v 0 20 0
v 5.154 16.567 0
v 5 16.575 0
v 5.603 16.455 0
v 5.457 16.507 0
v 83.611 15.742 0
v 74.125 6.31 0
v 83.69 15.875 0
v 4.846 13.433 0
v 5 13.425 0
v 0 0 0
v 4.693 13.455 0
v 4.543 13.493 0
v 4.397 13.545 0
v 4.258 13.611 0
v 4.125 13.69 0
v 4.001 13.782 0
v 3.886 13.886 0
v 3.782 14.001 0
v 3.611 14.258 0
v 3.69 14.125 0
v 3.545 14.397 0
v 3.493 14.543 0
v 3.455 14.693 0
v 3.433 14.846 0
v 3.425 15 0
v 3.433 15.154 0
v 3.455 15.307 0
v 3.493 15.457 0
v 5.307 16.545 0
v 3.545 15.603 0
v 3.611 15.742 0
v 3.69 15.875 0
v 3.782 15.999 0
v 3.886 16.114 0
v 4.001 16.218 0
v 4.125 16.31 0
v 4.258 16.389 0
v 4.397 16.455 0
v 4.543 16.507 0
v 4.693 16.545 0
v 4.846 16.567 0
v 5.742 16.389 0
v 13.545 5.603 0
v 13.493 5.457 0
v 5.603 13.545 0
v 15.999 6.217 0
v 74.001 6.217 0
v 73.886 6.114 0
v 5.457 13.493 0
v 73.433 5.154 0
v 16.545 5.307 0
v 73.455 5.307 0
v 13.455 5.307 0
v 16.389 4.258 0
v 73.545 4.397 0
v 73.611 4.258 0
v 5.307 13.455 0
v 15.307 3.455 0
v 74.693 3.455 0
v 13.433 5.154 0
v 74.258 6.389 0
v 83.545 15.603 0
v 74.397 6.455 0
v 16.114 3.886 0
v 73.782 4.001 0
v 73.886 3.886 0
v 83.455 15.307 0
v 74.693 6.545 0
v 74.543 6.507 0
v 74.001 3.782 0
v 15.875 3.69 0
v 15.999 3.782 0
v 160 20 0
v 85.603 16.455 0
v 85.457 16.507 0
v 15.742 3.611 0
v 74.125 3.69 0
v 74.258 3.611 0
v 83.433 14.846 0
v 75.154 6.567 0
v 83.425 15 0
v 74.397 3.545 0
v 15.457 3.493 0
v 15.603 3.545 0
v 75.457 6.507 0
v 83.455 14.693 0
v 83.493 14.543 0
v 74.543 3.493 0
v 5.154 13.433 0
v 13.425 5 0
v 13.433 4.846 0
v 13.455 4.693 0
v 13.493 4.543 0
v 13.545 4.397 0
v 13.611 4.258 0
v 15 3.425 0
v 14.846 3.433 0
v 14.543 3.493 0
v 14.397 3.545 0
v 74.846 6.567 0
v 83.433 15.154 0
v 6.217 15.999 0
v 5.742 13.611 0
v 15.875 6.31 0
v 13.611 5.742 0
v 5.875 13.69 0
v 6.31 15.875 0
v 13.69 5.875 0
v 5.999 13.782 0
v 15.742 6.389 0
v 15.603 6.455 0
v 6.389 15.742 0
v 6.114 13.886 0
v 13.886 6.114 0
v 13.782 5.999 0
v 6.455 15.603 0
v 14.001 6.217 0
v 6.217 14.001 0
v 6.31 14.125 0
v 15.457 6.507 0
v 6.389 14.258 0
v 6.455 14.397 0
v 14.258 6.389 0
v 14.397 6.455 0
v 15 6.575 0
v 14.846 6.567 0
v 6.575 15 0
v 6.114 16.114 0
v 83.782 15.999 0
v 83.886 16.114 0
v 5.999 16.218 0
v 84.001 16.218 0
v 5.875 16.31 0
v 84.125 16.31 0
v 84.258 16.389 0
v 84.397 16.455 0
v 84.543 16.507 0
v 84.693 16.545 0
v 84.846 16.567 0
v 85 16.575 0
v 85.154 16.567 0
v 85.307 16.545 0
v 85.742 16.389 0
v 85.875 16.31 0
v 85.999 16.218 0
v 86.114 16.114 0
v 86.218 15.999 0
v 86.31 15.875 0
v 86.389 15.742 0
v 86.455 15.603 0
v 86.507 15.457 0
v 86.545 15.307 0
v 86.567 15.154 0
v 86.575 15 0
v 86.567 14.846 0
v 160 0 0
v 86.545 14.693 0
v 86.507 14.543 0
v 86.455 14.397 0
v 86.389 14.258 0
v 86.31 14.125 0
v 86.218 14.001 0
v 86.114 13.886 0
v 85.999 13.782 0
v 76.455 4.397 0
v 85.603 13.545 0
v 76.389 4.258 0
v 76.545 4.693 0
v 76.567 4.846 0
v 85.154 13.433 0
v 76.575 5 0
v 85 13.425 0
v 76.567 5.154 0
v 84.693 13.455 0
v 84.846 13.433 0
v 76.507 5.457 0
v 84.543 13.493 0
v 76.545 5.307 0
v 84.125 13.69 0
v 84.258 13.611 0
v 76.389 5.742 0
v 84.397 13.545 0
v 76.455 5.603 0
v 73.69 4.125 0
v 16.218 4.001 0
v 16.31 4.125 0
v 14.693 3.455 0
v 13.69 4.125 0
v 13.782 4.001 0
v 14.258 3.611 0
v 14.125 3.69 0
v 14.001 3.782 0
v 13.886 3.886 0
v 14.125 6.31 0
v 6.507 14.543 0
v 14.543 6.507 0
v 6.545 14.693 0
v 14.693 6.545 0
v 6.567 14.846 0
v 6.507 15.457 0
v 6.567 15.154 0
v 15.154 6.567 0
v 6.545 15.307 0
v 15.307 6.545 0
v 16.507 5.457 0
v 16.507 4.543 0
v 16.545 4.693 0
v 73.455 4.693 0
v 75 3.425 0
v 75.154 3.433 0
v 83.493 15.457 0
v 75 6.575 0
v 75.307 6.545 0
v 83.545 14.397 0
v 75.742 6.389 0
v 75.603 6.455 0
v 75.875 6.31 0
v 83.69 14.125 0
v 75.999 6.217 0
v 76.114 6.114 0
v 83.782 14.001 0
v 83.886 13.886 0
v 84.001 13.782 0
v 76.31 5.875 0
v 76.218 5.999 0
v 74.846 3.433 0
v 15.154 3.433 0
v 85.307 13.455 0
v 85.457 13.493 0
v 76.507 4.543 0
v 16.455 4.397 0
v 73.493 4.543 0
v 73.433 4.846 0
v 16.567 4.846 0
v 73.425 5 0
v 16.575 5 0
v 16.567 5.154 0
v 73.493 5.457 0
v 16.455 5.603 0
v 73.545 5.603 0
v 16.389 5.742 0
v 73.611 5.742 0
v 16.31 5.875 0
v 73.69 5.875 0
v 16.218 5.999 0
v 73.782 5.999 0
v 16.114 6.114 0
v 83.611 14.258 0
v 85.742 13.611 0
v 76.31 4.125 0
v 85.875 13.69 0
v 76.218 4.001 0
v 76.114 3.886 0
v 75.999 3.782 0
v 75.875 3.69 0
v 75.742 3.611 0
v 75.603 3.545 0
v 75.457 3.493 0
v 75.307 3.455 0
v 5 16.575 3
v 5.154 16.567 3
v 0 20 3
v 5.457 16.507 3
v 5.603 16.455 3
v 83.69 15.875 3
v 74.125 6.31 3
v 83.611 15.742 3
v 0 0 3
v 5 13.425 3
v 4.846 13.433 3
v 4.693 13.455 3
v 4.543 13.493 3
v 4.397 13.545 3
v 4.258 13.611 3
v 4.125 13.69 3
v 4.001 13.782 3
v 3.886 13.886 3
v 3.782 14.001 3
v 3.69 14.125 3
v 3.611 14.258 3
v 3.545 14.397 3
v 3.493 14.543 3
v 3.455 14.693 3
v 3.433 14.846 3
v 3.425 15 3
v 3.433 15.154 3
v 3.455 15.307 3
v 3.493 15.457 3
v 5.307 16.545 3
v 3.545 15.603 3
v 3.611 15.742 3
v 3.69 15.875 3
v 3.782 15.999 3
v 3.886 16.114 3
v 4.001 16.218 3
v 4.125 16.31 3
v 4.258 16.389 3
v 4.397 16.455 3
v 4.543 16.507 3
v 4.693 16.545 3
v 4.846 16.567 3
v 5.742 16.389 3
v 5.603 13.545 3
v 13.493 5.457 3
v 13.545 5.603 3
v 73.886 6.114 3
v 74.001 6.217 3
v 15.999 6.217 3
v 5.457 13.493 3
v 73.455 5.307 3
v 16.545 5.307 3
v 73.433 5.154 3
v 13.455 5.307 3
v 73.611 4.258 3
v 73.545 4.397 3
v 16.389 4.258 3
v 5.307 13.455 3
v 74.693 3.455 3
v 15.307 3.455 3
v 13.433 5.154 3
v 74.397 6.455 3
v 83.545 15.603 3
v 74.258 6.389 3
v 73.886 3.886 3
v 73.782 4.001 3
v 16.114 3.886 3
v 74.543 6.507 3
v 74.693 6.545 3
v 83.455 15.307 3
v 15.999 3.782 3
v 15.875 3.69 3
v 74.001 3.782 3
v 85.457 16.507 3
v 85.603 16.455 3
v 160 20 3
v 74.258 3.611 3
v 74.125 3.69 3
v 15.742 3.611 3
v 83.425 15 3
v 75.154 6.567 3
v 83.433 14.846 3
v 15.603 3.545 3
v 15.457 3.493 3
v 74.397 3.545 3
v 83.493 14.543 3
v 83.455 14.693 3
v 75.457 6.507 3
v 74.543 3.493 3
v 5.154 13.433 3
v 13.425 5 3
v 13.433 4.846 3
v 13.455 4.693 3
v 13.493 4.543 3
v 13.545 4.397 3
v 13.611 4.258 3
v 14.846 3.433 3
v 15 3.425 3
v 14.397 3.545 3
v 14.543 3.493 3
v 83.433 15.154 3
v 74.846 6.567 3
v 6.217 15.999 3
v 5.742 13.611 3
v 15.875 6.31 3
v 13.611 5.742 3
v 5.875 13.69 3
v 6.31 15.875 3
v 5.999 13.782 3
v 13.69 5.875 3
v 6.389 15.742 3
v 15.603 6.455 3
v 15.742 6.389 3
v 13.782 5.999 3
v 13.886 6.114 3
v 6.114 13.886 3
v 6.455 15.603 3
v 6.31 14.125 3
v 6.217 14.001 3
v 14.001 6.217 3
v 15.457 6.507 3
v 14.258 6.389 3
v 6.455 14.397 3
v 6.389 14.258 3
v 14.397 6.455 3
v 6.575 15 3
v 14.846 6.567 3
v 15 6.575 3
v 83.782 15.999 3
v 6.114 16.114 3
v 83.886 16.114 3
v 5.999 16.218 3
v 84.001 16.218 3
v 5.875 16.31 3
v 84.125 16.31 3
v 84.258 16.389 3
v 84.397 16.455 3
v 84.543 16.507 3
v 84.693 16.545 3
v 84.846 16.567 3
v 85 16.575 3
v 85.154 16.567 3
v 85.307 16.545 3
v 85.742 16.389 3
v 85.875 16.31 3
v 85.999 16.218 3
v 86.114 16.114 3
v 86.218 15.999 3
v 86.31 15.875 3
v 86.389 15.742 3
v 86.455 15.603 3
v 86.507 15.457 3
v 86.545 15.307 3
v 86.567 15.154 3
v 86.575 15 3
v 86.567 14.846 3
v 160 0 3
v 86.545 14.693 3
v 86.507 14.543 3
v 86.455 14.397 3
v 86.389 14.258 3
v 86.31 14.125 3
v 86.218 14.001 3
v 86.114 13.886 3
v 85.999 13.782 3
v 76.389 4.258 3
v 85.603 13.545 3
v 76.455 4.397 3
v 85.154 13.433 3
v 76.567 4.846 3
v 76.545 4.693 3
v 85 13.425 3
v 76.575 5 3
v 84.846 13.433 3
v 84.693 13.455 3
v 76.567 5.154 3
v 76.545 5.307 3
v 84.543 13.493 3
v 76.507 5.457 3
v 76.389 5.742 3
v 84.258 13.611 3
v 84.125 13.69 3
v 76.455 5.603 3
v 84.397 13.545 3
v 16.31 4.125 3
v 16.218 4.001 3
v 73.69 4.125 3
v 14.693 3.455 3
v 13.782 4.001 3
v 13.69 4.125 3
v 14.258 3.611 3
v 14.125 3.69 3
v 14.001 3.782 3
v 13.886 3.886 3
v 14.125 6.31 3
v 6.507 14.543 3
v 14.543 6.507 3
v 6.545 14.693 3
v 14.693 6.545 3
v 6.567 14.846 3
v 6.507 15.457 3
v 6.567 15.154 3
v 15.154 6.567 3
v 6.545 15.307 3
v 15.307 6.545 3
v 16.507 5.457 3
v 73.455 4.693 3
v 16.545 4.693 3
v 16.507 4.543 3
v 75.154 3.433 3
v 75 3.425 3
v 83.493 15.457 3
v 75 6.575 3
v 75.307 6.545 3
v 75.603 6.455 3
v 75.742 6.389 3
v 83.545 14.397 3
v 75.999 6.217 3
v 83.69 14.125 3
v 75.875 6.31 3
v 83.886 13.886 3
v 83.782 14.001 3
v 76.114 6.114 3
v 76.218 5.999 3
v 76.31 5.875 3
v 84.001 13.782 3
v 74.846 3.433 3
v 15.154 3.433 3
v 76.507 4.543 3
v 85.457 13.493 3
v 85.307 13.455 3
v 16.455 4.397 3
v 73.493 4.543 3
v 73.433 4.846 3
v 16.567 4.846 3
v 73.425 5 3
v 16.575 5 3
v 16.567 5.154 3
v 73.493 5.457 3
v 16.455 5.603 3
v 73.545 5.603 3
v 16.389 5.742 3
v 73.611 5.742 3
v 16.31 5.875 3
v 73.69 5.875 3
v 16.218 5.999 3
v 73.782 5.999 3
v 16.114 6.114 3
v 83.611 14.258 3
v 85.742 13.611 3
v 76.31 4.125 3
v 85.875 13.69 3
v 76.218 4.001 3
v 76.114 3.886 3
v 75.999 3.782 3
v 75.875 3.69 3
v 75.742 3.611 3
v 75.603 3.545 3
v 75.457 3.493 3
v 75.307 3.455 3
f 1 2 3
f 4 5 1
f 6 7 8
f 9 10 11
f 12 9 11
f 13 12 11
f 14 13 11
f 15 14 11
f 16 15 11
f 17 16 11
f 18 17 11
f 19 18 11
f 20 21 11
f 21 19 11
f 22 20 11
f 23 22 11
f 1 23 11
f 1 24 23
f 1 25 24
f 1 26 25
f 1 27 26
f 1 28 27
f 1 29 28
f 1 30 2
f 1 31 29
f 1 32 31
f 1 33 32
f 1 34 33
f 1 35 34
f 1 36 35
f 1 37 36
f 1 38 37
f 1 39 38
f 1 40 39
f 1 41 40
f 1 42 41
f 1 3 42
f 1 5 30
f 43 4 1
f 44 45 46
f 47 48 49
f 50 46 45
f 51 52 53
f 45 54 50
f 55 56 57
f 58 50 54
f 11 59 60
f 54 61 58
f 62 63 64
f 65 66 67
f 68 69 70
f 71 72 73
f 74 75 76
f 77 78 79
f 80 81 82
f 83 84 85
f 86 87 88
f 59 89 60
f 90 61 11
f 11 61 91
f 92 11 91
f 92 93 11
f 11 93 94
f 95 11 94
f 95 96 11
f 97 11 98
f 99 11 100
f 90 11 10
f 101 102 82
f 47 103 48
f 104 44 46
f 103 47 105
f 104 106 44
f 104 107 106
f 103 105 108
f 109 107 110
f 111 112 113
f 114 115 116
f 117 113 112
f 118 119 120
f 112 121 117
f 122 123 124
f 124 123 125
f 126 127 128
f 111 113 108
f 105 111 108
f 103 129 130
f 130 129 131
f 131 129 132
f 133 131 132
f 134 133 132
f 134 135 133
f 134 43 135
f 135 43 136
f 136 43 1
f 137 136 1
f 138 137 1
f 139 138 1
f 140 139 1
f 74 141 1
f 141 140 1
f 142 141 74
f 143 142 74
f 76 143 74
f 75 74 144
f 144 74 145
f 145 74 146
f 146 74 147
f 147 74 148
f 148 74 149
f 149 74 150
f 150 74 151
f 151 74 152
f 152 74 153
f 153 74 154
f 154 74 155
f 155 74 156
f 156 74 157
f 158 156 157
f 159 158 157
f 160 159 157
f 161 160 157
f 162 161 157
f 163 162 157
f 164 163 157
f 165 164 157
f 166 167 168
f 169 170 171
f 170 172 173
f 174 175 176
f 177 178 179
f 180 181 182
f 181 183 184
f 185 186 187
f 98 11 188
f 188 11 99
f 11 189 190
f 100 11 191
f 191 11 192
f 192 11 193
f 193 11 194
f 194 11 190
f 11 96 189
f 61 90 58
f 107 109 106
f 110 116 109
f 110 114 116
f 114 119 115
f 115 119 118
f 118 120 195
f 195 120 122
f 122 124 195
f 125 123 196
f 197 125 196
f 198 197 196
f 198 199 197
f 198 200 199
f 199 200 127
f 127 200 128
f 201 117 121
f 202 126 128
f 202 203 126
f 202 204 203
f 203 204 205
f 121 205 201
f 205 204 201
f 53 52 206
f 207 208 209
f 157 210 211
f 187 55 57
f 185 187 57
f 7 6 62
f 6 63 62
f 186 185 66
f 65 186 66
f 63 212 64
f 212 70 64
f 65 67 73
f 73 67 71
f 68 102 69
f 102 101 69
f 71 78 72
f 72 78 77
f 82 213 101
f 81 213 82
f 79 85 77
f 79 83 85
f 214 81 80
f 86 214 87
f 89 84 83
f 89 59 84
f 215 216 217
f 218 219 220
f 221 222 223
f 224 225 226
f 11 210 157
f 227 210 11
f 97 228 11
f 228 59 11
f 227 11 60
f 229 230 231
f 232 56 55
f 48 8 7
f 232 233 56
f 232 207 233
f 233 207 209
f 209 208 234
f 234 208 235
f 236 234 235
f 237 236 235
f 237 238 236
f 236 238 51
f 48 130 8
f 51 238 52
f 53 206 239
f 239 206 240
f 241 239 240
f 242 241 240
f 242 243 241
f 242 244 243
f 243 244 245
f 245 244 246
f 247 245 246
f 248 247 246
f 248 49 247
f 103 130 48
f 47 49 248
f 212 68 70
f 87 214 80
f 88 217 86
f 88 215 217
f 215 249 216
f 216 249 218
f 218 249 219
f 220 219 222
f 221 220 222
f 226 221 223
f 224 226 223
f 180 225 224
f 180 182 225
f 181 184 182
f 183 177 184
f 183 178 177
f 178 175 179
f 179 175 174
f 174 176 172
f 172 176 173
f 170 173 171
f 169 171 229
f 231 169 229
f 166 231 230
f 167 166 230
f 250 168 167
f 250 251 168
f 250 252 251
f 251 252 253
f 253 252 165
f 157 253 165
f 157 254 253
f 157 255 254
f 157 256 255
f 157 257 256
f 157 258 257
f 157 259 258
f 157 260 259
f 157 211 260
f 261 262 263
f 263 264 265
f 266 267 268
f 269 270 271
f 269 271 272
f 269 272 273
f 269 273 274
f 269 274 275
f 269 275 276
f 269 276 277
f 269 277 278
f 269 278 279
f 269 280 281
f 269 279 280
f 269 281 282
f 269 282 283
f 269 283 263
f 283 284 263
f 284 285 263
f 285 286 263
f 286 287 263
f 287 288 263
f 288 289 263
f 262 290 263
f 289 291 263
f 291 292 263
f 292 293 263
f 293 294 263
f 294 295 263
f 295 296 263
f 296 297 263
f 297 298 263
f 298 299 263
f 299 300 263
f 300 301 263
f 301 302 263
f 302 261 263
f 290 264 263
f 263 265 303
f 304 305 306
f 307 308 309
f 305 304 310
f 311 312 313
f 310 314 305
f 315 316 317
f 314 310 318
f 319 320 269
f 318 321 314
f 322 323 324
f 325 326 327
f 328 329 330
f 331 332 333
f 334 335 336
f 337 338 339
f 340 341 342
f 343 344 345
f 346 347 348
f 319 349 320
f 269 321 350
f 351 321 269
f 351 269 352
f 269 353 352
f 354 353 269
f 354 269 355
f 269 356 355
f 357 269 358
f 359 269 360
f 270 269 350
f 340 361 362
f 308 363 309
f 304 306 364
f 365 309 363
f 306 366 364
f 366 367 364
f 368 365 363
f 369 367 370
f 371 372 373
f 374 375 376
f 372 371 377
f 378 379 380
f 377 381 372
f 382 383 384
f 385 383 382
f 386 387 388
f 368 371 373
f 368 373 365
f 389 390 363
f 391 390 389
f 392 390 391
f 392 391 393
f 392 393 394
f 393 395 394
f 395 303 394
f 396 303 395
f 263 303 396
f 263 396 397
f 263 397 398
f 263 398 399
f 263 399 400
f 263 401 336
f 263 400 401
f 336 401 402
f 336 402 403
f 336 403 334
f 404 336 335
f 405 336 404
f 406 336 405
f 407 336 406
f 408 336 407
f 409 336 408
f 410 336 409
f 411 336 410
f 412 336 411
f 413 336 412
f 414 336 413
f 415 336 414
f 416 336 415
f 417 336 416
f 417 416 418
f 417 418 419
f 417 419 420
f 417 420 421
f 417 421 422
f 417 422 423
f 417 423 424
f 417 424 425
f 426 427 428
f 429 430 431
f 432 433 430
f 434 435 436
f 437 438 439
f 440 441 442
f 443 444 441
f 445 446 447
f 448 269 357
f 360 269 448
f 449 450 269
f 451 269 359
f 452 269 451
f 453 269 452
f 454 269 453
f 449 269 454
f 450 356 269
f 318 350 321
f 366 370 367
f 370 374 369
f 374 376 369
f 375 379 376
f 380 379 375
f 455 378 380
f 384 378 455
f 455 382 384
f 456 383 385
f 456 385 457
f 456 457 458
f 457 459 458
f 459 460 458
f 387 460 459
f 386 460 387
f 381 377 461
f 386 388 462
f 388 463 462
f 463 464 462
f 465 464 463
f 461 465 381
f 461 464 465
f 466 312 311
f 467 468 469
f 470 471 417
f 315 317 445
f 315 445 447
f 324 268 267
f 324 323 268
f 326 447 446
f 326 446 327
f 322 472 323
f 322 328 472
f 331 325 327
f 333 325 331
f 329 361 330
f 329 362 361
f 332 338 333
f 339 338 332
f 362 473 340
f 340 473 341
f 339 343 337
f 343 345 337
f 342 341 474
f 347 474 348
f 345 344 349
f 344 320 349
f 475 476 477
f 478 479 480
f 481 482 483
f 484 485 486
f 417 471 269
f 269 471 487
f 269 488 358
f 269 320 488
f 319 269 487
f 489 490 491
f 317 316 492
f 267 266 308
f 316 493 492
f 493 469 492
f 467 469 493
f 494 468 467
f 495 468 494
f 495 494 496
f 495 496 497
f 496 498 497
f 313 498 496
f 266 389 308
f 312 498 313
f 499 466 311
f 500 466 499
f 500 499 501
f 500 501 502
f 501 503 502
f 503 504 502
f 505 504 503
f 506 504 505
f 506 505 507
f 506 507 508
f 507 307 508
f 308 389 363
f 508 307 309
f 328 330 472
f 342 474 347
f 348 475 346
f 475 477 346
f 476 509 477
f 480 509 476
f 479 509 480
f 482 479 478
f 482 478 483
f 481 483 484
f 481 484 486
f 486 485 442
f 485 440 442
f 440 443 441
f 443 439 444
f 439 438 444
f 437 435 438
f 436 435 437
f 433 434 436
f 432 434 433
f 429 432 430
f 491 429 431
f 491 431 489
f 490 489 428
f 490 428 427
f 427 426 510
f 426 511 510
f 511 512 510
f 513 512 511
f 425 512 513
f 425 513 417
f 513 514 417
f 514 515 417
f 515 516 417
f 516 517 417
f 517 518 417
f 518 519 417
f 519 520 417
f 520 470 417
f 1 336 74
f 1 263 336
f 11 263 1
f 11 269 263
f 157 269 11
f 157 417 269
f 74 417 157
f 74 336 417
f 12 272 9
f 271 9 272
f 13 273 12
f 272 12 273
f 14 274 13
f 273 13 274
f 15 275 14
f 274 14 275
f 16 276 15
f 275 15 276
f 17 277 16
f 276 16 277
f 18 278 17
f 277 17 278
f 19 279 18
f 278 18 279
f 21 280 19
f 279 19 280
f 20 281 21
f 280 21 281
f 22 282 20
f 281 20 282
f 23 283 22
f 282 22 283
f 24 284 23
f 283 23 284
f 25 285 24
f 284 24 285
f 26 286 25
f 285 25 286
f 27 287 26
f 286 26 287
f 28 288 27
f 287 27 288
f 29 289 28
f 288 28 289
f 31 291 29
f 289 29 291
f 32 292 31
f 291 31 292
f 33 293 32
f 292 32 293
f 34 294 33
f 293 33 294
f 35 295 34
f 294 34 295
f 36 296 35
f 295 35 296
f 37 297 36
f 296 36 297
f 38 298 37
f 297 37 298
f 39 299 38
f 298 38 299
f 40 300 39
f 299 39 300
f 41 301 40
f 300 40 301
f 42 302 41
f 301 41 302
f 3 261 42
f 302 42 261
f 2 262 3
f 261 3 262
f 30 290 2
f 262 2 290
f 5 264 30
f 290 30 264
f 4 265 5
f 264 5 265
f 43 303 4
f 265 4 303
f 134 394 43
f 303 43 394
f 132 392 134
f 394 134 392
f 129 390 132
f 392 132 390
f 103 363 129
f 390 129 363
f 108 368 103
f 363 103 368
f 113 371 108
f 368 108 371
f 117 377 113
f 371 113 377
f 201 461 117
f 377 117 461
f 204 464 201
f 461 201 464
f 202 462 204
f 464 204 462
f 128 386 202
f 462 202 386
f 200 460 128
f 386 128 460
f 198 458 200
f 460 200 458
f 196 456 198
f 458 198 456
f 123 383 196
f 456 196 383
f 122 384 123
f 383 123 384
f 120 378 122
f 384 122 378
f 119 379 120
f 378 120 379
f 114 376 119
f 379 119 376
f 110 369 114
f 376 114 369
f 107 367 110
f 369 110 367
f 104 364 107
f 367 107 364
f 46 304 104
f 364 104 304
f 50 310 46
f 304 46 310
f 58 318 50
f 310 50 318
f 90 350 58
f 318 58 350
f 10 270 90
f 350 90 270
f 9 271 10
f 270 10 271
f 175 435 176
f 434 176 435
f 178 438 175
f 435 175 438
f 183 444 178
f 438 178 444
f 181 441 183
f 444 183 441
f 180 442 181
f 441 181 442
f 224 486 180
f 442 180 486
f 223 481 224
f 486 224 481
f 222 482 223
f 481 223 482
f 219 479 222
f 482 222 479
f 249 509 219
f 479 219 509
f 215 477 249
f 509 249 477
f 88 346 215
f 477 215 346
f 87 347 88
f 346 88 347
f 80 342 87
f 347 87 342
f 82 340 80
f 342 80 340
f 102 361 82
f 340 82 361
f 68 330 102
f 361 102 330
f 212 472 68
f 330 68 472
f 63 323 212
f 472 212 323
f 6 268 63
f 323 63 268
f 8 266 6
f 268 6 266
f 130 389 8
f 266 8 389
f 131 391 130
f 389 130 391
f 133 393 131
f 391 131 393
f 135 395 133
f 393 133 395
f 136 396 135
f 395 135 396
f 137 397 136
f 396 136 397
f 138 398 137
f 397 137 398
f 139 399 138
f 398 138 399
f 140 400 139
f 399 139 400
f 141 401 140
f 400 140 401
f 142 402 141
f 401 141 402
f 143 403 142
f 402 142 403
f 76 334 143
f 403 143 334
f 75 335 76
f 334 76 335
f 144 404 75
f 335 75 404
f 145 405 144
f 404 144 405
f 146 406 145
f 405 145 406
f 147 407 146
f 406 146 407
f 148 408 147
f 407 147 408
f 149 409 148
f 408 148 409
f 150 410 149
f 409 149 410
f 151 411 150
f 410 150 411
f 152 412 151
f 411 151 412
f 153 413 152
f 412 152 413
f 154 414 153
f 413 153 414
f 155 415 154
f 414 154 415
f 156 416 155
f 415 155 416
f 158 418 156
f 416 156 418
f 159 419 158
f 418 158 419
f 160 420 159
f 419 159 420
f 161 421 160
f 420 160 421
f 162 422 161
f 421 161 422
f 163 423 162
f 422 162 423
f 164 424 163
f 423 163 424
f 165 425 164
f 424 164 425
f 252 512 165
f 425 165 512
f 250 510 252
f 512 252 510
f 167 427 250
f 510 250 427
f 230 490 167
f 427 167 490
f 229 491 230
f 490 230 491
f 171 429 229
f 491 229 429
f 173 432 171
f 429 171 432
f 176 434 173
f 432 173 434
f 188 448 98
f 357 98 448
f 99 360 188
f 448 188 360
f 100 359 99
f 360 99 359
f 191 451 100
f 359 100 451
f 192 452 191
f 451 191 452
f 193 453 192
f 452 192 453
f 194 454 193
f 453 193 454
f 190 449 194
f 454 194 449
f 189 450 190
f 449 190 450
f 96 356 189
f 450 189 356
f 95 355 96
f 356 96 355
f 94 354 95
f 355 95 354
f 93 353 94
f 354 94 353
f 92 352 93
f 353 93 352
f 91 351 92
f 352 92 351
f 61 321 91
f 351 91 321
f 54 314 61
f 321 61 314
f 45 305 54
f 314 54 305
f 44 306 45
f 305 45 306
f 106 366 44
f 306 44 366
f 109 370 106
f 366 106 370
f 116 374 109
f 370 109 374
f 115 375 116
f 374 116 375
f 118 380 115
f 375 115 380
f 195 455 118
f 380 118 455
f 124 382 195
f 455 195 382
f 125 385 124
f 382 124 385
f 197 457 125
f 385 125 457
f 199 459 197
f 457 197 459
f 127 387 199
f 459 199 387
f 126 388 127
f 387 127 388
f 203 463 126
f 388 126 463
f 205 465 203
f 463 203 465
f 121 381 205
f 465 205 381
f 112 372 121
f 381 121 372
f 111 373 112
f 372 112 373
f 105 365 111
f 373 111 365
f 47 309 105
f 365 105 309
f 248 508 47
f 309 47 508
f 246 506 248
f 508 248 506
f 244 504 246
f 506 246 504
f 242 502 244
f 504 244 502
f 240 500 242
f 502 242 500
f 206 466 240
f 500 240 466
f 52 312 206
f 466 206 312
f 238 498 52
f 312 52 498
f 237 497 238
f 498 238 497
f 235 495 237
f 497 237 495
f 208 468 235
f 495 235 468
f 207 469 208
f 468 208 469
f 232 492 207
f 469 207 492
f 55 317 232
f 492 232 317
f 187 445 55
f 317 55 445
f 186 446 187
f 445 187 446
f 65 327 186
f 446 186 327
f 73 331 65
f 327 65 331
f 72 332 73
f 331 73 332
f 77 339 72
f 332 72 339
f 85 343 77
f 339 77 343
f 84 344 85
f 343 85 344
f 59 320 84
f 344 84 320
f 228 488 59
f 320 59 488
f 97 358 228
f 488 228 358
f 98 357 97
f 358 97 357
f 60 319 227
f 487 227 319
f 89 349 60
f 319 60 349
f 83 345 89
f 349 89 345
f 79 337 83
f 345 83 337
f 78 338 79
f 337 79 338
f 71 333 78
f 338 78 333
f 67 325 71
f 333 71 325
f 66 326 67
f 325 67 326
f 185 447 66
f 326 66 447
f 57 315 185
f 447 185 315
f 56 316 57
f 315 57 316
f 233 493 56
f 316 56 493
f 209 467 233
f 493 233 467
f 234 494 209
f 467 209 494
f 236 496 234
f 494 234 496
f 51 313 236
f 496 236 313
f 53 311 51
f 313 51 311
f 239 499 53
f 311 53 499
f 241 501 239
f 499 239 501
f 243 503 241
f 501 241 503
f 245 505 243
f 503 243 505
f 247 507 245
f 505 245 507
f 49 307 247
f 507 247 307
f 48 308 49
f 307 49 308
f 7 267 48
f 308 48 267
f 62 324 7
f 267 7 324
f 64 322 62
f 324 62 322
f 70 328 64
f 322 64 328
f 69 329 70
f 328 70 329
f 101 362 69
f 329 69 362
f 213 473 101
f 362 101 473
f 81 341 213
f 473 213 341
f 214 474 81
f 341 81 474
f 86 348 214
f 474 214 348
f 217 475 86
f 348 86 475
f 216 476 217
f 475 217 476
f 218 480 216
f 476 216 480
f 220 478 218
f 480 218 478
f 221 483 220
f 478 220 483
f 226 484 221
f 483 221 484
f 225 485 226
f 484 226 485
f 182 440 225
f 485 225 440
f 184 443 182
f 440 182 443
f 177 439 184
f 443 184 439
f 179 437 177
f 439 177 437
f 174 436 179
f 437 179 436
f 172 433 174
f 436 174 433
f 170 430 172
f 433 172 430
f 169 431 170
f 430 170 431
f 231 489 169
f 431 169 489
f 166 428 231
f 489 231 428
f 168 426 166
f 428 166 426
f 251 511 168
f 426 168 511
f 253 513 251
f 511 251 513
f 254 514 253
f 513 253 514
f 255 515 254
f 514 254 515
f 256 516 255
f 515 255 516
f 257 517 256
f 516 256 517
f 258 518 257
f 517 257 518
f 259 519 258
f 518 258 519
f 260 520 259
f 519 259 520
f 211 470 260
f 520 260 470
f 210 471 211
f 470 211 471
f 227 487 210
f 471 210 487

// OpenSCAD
// file: miniature-bases/common/params.scad
$fn = $preview ? 32 : 64;

// Value of kerf to apply when lasercutting things.
// Value is based on the experience using Epilog Mini machine in
// Google WFC Makerspace.
kerf = 0.2;

// Spacing between insert and miniatures bases to allow to slick fit.
insert_spacing = 0.2;
magnet_spacing = 0.15;

// Default values
//
// Default diameter of magnets used for my miniatures.
default_magnet_diameter = 3;
base_height = 3;
pin_height = 2.5;
// file: miniature-bases/common/kow.scad
include <params.scad>;

module MagnetSockets(unit_type, only_diagonal = false) {
  baseSize = BaseSize(unit_type);

  translate([ 5, baseSize[1] - 5 ]) children(0);
  translate([ baseSize[0] - 5, 5 ]) children(0);

  if (!only_diagonal) {
    translate([ 5, 5 ]) children(0);
    translate([ baseSize[0] - 5, baseSize[1] - 5 ]) children(0);
  }
}

module Magnet(d = default_magnet_diameter, offset = 0) {
  circle(d = d + offset);
}

module BM4Sockets(unit_type, spacing, only_diagonal = false) {
  MagnetSockets(unit_type = unit_type, only_diagonal = only_diagonal) {
    Magnet(offset = spacing);
  }
}

module Base(unit_type, extraMargin = [ 0, 0 ]) {
  square(BaseSize(unit_type) + extraMargin);
}

function BaseSize(unit_type) = unit_type == "infantry"         ? [ 20, 20 ]
                               : unit_type == "heavy_infantry" ? [ 25, 25 ]
                               : unit_type == "cavalry"        ? [ 25, 50 ]
                               : unit_type == "lrginf"         ? [ 40, 40 ]
                               : unit_type == "lrgcav"         ? [ 50, 50 ]
                               : unit_type == "titan"          ? [ 75, 75 ]
                                                               : [ 10, 10 ];

function BaseNum(unit_type, unitSize) =
    unit_type == "infantry"  ? unitSize == "legion"     ? [ 10, 6 ]
                               : unitSize == "horde"    ? [ 10, 4 ]
                               : unitSize == "regiment" ? [ 5, 4 ]
                                                        : [ 5, 2 ]
    : unit_type == "cavalry" ? unitSize == "regiment" ? [ 5, 2 ] : [ 5, 1 ]
    : unit_type == "lrginf"  ? unitSize == "regiment" ? [ 3, 1 ] : [ 3, 2 ]
    : unit_type == "lrgcav"  ? unitSize == "regiment" ? [ 3, 1 ]
                               : unitSize == "horde"  ? [ 3, 2 ]
                                                      : [ 1, 1 ]
                             : [ 1, 1 ];
// file: common/params.scad
$fn = $preview ? 32 : 64;

// Value of kerf to apply when lasercutting things.
// Value is based on the experience using Epilog Mini machine in
// Google WFC Makerspace.
kerf = 0.2;

// Spacing between insert and miniatures bases to allow to slick fit.
insert_spacing = 0.2;
magnet_spacing = 0.15;

// Default values
//
// Default diameter of magnets used for my miniatures.
default_magnet_diameter = 3;
base_height = 3;
pin_height = 2.5;
// file: miniature-bases/libbase.scad
include <common/kow.scad>;

module MagnetHole() { Magnet(offset = magnet_spacing); } 

module BaseBM4(unit_type, only_diagonal = false) {
  linear_extrude(height = base_height) {
    difference() {
      Base(unit_type = unit_type);
      union() {
        MagnetSockets(unit_type = unit_type, only_diagonal = only_diagonal) {
          MagnetHole();
        }
        children();
      }
    }
  }
}

SLOTTA_ANGLE = 0;
SLOTTA_SLOT_MARGIN = 1.5; 
SLOT_WIDTH = 1.7;  


module SlottaBM4(a = SLOTTA_ANGLE, unit_type = "infantry", slot_margin = SLOTTA_SLOT_MARGIN) {
  base_size = BaseSize(unit_type);

  // slot_length = 18; for a = 0 (as in GW bases)
  // total_slot_margin = 4; for a = 45 (as in GW bases)

  slot_length =
      (base_size[0] - 2 * slot_margin - cos(90 - a) * SLOT_WIDTH) / cos(a);

  BaseBM4(unit_type = unit_type, only_diagonal = true) {
    translate(0.5 * base_size) rotate(a)
        square([ slot_length, SLOT_WIDTH ], center = true);
  };
}

module CavalrySlot() {
  slotWidth = 2.5;
  slotLength = 35;
  slotSpacing = 2.8;
  baseSize = BaseSize("cavalry");

  translate([
    (baseSize[0] - 2 * slotWidth - slotSpacing) / 2,
    (baseSize[1] - slotLength) / 2
  ]) {
    square([ slotWidth, slotLength ]);
    translate([ slotSpacing + slotWidth, 0 ]) square([ slotWidth, slotLength ]);
  }
}
// file: common/kow.scad
include <params.scad>;

module MagnetSockets(unit_type, only_diagonal = false) {
  baseSize = BaseSize(unit_type);

  translate([ 5, baseSize[1] - 5 ]) children(0);
  translate([ baseSize[0] - 5, 5 ]) children(0);

  if (!only_diagonal) {
    translate([ 5, 5 ]) children(0);
    translate([ baseSize[0] - 5, baseSize[1] - 5 ]) children(0);
  }
}

module Magnet(d = default_magnet_diameter, offset = 0) {
  circle(d = d + offset);
}

module BM4Sockets(unit_type, spacing, only_diagonal = false) {
  MagnetSockets(unit_type = unit_type, only_diagonal = only_diagonal) {
    Magnet(offset = spacing);
  }
}

module Base(unit_type, extraMargin = [ 0, 0 ]) {
  square(BaseSize(unit_type) + extraMargin);
}

function BaseSize(unit_type) = unit_type == "infantry"         ? [ 20, 20 ]
                               : unit_type == "heavy_infantry" ? [ 25, 25 ]
                               : unit_type == "cavalry"        ? [ 25, 50 ]
                               : unit_type == "lrginf"         ? [ 40, 40 ]
                               : unit_type == "lrgcav"         ? [ 50, 50 ]
                               : unit_type == "titan"          ? [ 75, 75 ]
                                                               : [ 10, 10 ];

function BaseNum(unit_type, unitSize) =
    unit_type == "infantry"  ? unitSize == "legion"     ? [ 10, 6 ]
                               : unitSize == "horde"    ? [ 10, 4 ]
                               : unitSize == "regiment" ? [ 5, 4 ]
                                                        : [ 5, 2 ]
    : unit_type == "cavalry" ? unitSize == "regiment" ? [ 5, 2 ] : [ 5, 1 ]
    : unit_type == "lrginf"  ? unitSize == "regiment" ? [ 3, 1 ] : [ 3, 2 ]
    : unit_type == "lrgcav"  ? unitSize == "regiment" ? [ 3, 1 ]
                               : unitSize == "horde"  ? [ 3, 2 ]
                                                      : [ 1, 1 ]
                             : [ 1, 1 ];
// main file
include <common/kow.scad>
include <miniature-bases/libbase.scad>

$fn = $preview ? 32 : 64;

base_size = BaseSize("infantry");

linear_extrude(height = base_height) {
  difference() {
    square([ 8 * base_size[0], base_size[1] ]);
    MagnetSockets(unit_type = "infantry", only_diagonal = true) { MagnetHole(); }
    translate([ 4.5 * base_size[0], 0 ]) {
      mirror([ 1, 0, 0 ]) {
        MagnetSockets(unit_type = "infantry", only_diagonal = true) {
          MagnetHole();
        }
      }
      translate([ 7 * base_size[0], 0 ]) {
        MagnetSockets(unit_type = "infantry", only_diagonal = true) {
          MagnetHole();
        }
      }
    }
  }
}
